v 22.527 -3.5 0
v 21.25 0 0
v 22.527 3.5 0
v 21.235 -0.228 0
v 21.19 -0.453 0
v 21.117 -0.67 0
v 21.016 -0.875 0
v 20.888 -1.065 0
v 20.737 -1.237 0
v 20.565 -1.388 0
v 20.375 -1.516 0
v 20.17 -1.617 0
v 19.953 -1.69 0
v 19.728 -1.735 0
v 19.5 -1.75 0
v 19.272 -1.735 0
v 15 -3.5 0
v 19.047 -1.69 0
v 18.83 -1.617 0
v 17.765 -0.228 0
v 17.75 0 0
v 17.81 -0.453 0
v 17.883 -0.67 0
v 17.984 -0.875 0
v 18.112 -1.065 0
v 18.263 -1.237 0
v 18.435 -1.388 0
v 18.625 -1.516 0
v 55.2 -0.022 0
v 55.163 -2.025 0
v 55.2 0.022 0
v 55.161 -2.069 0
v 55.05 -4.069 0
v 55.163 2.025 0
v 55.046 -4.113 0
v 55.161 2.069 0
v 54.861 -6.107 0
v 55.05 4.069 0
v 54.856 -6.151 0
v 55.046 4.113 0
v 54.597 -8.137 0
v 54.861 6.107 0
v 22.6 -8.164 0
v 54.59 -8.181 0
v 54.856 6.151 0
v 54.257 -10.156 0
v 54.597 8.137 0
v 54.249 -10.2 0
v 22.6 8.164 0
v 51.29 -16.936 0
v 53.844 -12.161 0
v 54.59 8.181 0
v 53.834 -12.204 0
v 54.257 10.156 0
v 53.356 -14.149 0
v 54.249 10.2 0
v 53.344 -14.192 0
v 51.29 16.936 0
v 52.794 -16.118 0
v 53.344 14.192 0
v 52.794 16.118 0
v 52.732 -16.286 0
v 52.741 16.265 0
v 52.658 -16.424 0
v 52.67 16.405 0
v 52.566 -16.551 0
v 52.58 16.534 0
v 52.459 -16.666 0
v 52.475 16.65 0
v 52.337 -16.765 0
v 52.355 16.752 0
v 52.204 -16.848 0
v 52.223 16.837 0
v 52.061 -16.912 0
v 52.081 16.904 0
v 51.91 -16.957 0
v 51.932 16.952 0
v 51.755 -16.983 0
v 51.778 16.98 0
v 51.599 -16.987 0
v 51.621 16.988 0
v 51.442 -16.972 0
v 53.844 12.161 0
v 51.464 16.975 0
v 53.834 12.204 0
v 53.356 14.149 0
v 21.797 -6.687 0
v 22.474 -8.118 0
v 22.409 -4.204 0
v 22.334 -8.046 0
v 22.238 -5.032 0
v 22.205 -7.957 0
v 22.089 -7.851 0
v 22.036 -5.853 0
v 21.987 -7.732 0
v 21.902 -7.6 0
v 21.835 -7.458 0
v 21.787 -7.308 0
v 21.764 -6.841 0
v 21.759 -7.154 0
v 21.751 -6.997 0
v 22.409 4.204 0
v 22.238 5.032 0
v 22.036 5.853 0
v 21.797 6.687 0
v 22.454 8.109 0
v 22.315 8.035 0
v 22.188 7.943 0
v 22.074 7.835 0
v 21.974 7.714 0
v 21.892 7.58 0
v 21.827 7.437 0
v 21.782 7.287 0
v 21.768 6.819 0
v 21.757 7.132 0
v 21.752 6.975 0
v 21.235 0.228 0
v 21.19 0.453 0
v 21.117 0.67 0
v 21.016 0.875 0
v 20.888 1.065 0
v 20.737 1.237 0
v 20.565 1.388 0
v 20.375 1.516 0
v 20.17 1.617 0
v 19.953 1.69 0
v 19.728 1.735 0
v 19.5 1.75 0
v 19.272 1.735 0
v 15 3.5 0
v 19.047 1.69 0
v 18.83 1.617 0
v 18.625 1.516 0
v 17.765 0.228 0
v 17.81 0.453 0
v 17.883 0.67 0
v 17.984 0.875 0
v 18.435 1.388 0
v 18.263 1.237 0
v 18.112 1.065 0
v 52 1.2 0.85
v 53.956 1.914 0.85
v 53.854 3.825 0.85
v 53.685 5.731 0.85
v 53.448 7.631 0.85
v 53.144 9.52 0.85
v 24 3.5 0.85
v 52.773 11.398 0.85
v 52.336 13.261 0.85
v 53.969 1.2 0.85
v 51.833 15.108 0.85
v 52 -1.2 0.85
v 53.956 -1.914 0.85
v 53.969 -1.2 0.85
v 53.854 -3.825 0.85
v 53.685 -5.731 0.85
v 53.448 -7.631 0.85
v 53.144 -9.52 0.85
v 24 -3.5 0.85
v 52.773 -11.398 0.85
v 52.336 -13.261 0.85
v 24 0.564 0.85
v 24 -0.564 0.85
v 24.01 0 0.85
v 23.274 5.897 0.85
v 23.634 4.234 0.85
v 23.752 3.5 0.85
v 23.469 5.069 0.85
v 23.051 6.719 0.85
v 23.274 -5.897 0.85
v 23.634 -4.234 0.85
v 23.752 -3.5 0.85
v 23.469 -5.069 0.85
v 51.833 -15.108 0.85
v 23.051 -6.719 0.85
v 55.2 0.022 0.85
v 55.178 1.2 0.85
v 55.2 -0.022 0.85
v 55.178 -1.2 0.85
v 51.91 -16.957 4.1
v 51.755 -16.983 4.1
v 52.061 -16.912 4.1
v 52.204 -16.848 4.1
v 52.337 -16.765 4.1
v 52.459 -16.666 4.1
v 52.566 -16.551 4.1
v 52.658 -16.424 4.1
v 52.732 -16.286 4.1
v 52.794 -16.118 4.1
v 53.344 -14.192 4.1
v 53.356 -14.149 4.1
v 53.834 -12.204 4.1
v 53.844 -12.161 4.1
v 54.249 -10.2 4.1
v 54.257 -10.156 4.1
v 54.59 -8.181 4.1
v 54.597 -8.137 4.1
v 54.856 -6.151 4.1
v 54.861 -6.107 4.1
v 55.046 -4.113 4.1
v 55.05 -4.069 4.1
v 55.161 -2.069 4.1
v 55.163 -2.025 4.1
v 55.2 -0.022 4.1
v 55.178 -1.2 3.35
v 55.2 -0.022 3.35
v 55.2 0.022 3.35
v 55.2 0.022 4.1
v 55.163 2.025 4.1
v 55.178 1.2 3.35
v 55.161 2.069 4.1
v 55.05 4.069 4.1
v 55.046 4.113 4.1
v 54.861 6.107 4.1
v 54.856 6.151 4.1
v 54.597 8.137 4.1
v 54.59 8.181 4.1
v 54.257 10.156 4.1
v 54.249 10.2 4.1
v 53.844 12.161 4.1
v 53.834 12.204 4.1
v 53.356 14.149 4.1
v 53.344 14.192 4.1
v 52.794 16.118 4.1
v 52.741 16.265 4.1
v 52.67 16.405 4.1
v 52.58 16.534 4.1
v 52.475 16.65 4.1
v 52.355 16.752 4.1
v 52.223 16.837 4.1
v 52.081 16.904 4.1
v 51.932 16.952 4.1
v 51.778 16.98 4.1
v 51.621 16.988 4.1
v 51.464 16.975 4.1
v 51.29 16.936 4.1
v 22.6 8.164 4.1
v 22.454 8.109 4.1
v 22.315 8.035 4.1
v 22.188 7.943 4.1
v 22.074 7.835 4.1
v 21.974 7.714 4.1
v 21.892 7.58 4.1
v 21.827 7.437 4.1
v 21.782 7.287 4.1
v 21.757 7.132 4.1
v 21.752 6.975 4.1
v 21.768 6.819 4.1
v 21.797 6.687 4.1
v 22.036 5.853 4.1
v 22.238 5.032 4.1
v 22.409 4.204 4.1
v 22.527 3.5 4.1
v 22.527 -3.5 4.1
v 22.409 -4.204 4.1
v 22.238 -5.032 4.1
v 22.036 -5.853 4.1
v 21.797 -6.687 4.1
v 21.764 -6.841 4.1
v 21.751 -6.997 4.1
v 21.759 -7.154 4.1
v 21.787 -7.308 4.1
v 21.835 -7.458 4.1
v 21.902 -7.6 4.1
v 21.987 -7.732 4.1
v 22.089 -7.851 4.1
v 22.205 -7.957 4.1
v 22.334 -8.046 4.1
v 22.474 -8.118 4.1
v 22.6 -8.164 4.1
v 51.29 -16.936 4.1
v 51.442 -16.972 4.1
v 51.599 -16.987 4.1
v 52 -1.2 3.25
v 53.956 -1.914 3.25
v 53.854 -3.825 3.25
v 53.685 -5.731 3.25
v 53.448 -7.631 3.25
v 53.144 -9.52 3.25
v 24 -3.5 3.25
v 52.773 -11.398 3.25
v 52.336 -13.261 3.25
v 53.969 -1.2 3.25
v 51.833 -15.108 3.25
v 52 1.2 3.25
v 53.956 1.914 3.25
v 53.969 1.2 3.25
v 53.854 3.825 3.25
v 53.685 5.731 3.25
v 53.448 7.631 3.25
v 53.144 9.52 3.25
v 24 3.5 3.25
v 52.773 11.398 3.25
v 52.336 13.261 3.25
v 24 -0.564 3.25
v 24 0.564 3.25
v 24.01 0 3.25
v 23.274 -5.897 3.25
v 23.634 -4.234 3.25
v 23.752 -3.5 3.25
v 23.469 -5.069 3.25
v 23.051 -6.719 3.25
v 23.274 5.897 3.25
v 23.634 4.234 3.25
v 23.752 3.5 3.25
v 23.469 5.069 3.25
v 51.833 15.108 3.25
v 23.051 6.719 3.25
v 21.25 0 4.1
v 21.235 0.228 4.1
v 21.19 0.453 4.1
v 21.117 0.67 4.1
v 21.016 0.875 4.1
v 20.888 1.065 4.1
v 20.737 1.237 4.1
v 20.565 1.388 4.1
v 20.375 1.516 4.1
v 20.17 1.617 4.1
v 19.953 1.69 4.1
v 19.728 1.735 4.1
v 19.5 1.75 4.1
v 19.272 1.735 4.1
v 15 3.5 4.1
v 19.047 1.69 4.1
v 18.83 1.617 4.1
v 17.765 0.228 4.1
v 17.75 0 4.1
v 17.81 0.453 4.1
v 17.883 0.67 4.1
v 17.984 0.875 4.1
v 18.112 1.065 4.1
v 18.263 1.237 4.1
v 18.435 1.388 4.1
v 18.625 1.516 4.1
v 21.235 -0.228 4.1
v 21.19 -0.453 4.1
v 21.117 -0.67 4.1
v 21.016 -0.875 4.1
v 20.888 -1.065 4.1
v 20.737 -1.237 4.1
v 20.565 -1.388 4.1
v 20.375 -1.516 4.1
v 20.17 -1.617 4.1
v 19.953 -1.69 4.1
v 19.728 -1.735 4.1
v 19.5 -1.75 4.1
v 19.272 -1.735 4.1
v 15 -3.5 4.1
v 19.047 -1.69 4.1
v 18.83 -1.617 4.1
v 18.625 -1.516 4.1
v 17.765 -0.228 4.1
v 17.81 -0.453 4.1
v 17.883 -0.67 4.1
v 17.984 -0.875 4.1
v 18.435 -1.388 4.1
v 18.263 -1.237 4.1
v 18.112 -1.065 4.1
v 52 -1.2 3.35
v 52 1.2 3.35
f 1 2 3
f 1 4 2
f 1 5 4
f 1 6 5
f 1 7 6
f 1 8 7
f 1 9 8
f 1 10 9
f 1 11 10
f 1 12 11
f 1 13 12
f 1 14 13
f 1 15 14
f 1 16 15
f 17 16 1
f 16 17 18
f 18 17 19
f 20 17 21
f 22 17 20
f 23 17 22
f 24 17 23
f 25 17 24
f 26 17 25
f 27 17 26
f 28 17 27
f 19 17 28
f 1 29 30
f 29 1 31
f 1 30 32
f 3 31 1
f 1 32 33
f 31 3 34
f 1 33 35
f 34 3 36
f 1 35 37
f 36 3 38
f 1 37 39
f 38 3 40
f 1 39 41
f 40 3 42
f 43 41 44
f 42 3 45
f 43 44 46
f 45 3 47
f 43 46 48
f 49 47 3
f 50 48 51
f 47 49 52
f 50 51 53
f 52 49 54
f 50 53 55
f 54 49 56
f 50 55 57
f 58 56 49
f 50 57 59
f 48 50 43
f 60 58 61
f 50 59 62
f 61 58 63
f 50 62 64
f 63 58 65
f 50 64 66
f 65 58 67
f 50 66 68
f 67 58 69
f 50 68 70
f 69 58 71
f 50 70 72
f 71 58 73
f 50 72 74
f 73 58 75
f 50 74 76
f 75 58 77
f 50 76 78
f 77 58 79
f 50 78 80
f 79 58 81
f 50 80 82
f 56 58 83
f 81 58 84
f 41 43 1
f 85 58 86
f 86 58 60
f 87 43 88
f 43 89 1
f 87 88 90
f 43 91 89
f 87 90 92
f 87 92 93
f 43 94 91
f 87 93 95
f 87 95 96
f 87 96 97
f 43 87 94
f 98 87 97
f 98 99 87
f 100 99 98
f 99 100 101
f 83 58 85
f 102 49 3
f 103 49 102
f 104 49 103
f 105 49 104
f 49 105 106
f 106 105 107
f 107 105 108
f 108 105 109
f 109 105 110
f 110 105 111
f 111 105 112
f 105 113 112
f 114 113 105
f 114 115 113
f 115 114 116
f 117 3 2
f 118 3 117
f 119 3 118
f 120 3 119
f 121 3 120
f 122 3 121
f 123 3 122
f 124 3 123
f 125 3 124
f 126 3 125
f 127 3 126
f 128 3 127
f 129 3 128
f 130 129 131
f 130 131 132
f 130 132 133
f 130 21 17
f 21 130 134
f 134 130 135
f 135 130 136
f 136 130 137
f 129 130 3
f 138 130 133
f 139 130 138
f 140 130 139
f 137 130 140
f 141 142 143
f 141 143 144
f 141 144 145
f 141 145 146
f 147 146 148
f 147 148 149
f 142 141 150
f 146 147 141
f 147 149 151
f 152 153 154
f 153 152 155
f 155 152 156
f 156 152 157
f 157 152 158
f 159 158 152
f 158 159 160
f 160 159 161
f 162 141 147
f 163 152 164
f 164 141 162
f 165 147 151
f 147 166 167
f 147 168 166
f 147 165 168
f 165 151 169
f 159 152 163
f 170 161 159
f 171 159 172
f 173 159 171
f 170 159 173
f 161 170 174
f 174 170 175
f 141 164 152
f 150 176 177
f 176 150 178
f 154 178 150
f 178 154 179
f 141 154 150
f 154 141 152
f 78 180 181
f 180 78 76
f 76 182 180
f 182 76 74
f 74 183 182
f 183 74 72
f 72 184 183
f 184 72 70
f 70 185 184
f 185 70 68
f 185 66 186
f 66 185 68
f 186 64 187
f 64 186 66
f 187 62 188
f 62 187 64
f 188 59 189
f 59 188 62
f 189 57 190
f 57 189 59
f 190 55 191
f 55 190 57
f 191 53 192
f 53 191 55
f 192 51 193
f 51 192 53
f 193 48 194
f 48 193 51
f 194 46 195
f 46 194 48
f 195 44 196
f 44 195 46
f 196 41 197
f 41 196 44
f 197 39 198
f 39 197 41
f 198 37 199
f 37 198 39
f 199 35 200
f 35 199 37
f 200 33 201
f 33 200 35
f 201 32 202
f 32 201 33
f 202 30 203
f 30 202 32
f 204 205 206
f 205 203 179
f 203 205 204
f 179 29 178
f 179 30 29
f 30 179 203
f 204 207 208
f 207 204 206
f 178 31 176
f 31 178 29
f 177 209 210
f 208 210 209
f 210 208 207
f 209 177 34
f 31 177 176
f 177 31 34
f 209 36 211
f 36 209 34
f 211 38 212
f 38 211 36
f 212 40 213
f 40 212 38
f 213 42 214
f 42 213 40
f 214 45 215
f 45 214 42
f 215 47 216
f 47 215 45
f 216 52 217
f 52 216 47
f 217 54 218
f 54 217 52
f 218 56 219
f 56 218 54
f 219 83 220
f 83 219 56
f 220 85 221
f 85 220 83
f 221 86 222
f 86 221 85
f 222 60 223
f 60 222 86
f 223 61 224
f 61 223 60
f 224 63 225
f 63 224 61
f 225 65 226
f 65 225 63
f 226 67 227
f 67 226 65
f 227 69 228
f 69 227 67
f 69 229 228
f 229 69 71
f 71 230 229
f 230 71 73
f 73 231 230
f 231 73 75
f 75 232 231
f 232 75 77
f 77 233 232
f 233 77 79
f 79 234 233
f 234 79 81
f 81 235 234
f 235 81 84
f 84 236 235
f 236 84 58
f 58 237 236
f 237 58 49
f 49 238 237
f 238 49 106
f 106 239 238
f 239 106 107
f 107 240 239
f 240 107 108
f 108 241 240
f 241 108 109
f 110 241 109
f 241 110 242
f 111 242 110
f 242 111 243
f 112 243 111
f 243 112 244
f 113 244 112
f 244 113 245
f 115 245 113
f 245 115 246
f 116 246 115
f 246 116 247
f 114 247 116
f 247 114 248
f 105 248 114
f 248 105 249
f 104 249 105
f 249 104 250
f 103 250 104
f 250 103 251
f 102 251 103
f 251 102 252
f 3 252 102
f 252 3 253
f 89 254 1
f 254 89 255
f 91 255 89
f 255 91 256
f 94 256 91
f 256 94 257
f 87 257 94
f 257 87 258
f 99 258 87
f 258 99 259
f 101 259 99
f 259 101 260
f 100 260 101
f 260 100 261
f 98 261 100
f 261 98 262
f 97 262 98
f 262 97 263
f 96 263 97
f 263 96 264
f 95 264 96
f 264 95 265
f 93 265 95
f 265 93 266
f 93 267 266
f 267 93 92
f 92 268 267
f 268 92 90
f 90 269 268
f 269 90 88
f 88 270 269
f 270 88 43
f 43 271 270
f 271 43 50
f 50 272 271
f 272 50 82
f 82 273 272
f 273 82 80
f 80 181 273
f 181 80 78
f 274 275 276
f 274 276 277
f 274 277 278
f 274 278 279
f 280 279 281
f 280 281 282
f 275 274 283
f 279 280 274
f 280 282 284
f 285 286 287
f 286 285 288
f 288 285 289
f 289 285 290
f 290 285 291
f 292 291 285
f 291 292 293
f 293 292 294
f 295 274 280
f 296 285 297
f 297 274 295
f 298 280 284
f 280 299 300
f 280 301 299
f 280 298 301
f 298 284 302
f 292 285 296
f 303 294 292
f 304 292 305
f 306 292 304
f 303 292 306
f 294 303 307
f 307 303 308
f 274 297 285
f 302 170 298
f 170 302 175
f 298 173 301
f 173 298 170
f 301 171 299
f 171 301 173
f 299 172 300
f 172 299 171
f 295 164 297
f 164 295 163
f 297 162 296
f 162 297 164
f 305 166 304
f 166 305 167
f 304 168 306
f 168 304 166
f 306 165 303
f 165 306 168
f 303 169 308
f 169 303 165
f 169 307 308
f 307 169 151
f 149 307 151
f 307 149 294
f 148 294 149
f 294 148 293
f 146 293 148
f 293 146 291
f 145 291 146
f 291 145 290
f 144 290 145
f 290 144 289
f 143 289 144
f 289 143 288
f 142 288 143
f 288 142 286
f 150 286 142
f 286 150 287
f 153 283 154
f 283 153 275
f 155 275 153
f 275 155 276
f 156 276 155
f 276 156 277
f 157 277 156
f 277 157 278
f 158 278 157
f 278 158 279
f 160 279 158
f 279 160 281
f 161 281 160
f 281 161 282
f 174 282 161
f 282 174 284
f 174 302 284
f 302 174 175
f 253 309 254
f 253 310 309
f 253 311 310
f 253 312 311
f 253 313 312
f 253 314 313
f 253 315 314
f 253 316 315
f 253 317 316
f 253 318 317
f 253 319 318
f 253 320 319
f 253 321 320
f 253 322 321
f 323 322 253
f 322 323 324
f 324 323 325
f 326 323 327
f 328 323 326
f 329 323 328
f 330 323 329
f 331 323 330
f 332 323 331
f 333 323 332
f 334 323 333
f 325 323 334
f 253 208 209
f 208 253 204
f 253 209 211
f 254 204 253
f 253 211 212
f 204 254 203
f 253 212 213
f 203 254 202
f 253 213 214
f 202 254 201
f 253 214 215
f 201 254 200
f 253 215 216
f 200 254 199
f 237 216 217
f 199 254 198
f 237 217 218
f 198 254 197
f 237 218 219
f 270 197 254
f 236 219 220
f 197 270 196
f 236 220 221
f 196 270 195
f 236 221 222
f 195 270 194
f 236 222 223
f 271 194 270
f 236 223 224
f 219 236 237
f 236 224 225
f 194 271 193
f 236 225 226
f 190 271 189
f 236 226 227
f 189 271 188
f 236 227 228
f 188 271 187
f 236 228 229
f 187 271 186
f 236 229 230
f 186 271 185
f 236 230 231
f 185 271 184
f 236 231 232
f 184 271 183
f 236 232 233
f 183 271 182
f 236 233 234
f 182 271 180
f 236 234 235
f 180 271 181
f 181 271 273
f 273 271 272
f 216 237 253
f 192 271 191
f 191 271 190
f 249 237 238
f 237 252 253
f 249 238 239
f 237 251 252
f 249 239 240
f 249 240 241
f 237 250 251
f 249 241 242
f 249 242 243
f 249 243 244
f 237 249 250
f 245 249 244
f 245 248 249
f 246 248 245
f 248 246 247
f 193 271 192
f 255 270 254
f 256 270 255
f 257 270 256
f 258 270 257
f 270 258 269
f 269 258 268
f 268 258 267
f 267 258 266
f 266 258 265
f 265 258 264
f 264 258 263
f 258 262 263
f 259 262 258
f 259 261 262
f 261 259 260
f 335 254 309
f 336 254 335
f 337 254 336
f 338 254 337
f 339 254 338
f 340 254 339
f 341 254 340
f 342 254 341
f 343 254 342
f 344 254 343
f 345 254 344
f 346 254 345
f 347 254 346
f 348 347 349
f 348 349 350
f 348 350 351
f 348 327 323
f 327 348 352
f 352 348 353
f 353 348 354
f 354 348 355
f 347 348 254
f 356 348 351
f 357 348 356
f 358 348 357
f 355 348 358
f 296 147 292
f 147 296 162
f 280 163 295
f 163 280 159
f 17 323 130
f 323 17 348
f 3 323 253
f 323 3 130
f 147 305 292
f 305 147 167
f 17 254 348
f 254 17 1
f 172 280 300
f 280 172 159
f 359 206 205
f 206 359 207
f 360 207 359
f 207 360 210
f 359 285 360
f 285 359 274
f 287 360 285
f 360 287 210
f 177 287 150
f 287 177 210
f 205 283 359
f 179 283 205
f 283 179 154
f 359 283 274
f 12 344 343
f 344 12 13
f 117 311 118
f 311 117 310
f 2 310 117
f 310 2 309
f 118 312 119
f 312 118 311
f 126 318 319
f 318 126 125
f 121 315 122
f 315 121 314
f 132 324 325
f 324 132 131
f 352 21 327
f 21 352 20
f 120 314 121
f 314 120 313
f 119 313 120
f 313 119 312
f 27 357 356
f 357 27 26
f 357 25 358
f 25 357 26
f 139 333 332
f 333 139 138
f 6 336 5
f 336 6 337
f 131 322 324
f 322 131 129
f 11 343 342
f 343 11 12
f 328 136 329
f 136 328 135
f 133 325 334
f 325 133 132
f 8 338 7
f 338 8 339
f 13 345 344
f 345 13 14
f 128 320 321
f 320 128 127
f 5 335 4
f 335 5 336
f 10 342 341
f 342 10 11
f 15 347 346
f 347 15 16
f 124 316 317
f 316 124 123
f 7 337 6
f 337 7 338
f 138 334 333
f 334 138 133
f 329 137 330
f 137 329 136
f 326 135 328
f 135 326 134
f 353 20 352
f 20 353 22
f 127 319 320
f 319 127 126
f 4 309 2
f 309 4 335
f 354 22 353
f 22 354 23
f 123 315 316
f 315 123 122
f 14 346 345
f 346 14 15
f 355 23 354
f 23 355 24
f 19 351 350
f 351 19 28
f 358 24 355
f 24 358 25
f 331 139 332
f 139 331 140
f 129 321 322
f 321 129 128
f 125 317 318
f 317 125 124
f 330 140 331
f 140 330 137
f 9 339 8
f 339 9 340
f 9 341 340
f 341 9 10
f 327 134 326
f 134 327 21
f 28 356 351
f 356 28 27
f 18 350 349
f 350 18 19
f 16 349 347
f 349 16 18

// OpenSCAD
// file: parameters.scad
// =============================================================================
// Gen-T Triple-gap sandwich AFPM — WOUND-AWARE (HARD GATE)
// RotorA | Stator1 | Mid dual-face rotor | Stator2 | RotorB
// Magnets: outer 4+4 Ø20, mid 4+4 Ø20; Ø5 Halbach 12+12 outer + 12+12 mid
// =============================================================================

wire_awg            = 26;
wire_od             = 0.45;
turns               = 100;      // 18 pancakes × 100 t ≈ 180 m @ mean 0.10 m
fill                = 0.70;
layers_per_face     = 2;
wind_build_axial    = layers_per_face * wire_od * fill;   // 0.63
wind_build_radial   = 2.5 * wire_od * fill;               // 0.788

coil_id_r           = 24.0;
coil_od_r           = 54.0;
span_deg            = 34.0;     // 9 stations × 40°
former_web          = 2.4;
flange_t            = 0.85;
wall                = 1.2;
slot_w              = 2.4;
mount_hole          = 3.5;
tab_len             = 7.0;

former_bare_h       = former_web + 2 * flange_t;            // 4.1
coil_envelope_h     = former_bare_h + 2 * wind_build_axial; // 5.36

// Each gap: magnet ↔ wound ≥ 0.80
run_clear           = 0.82;
gap_spacer_h        = run_clear + wind_build_axial;         // 1.45
// Outer gap m2m (outer rotor ↔ mid rotor face through one stator):
m2m_outer           = coil_envelope_h + 2 * run_clear;      // 7.00
// Two identical outer gaps + mid carrier thickness between coil planes

coil_stations       = 9;        // per stator; ×2 = 18
bay_r_in            = coil_id_r - 2.0 - wind_build_radial;
bay_r_out           = coil_od_r + 2.0 + wind_build_radial;
bay_span            = span_deg + 4.0;
bay_offset          = 2.0;
bay_depth           = former_bare_h + wind_build_axial;     // seat bare+back wind
stator_back_web     = 2.2;
stator_thick        = bay_depth + stator_back_web;          // ~6.93
stator_od           = 152.0;
shaft_clear_stator  = 40.0;
coil_mount_r        = 30.0;

// Outer rotors: 4×Ø20 + 12×Ø5 each
large_pocket_d      = 20.3;
small_pocket_d      = 5.3;
pocket_h            = 5.2;
outer_large_n       = 4;
mid_large_n_face    = 4;        // 4 per face = 8 mid
R_large             = 50.0;
R_small_inner       = 38.0;
R_small_mid         = 50.0;
R_small_outer       = 62.0;
carrier_od          = 148.0;
outer_carrier_thick = 7.5;
mid_carrier_thick   = 12.0;     // dual face 5.2+1.6+5.2
hub_h               = 10.0;
hub_od              = 30.0;

shaft_bore          = 8.35;
bearing_d           = 21.85;
bearing_h           = 7.2;
m3_clear            = 3.5;
bolt_r_inner        = 36.0;
bolt_n_inner        = 6;
flange_bolt_r       = 72.0;
flange_bolt_n       = 6;
brace_r             = 68.0;
brace_d             = 4.3;
brace_n             = 4;

spacer_pad_od       = 14.0;
spacer_pad_id       = m3_clear;
endbell_od          = 152.0;
endbell_thick       = 8.0;
endbell_shaft_clear = 10.0;

$fn = 64;
// main file
// Gen-T pancake former — print ×18 (9 per stator)
// WOUND: wind_build_axial=0.63, coil_envelope_h=5.36, magnet↔wound=0.82
include <parameters.scad>;
$fn = 48;
module sector_2d(r_in, r_out, ang) {
    polygon([
        for (a = [-ang/2 : ang/16 : ang/2]) [r_in*cos(a), r_in*sin(a)],
        for (a = [ang/2 : -ang/16 : -ang/2]) [r_out*cos(a), r_out*sin(a)]
    ]);
}
module flange() {
    linear_extrude(flange_t) offset(r=wall) sector_2d(coil_id_r, coil_od_r, span_deg);
}
difference() {
    union() {
        flange();
        translate([0, 0, flange_t])
            linear_extrude(former_web)
                difference() {
                    offset(r=wall) sector_2d(coil_id_r, coil_od_r, span_deg);
                    sector_2d(coil_id_r + 0.01, coil_od_r - 0.01, span_deg - 1.5);
                }
        translate([0, 0, flange_t + former_web]) flange();
        translate([coil_id_r - tab_len - 2, -3.5, 0])
            cube([tab_len + 2, 7, former_bare_h]);
    }
    translate([coil_od_r - 2, -slot_w/2, flange_t])
        cube([wall + 4, slot_w, former_web + 0.1]);
    translate([coil_id_r - tab_len/2 - 1, 0, -0.1])
        cylinder(d=mount_hole, h=former_bare_h + 1);
}
